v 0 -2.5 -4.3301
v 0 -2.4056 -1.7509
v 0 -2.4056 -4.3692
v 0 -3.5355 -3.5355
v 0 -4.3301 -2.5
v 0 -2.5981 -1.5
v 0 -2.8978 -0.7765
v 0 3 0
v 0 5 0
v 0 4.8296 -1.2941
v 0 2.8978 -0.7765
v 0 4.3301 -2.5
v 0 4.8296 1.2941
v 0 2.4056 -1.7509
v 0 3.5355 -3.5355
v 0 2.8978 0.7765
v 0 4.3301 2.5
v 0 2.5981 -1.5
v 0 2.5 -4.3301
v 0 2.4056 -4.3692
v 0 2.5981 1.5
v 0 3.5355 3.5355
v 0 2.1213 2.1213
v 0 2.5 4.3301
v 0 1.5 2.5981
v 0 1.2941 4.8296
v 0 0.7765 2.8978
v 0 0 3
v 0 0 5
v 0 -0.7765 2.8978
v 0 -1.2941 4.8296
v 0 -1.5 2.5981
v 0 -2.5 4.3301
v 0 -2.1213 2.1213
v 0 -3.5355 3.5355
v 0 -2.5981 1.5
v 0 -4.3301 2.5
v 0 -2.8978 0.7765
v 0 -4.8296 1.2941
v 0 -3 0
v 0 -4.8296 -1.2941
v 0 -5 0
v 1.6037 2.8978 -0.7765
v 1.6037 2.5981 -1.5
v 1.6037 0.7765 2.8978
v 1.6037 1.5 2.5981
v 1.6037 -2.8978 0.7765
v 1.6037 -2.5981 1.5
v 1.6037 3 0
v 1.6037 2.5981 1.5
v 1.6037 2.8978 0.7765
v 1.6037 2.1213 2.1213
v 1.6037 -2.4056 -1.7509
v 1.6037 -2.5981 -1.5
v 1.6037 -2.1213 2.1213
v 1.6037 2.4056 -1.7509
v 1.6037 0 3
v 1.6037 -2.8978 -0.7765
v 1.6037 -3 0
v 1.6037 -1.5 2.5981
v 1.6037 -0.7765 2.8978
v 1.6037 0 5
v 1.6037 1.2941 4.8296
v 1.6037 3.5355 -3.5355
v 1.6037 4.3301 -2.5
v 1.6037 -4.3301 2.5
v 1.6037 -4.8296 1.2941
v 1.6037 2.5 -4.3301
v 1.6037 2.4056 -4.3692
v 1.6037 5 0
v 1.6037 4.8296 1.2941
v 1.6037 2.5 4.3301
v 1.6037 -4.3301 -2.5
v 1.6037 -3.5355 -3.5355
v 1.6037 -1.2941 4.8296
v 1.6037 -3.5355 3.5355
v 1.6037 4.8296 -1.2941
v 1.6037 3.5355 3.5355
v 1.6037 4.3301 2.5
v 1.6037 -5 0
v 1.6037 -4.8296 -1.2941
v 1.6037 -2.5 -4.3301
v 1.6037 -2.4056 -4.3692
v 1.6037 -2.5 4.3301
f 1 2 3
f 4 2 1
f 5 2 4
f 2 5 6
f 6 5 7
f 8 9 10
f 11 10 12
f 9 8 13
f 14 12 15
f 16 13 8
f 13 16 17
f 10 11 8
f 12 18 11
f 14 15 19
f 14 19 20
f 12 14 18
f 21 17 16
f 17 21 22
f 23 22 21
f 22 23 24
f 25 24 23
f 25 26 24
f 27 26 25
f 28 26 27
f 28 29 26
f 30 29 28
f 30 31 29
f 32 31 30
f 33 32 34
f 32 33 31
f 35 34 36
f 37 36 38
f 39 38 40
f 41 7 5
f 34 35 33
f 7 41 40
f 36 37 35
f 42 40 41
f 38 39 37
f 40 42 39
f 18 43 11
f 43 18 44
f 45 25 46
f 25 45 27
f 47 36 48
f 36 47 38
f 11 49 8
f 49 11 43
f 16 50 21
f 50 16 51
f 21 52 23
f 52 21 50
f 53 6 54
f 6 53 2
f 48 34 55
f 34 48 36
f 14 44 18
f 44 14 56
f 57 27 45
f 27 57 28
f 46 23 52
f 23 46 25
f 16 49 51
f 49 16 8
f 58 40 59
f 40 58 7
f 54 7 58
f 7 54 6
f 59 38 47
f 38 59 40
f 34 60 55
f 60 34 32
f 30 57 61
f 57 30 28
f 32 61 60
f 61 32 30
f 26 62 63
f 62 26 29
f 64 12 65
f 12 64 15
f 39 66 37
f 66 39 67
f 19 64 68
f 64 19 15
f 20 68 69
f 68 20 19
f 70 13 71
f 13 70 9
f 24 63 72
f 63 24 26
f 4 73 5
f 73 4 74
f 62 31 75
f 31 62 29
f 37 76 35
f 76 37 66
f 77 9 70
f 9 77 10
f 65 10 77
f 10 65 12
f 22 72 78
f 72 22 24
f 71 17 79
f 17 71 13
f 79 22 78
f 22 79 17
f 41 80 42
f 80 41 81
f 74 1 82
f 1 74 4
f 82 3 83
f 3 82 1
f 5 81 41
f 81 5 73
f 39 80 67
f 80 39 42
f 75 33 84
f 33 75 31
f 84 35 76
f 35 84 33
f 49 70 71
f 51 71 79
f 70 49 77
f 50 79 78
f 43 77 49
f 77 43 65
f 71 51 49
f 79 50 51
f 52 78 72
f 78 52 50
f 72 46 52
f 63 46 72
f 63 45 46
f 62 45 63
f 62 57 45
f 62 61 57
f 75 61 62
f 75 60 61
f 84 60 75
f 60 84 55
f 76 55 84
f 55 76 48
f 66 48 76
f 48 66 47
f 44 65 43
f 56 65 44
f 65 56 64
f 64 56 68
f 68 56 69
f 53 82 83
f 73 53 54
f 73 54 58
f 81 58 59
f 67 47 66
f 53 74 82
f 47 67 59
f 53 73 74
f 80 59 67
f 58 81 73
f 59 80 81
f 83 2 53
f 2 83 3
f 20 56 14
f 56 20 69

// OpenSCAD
// file: ../build_environments.scad
// build_environments.scad: modules to build level sections
//

module pool(diameter=10.0, wall_height=2.0, step_width=3.0, connections=[])
{
    difference() {
        union() {
        difference() {
            cylinder(h=0.5,r1=diameter+step_width,r2=diameter+step_width,$fn=48);
            translate([0,0,-0.1])
                cylinder(h=0.7,r1=diameter,r2=diameter,$fn=48);
        }
        difference() {
            cylinder(h=wall_height,r1=diameter+step_width+1.0,r2=diameter+step_width+1.0,$fn=48);
            translate([0,0,-0.1])
                cylinder(h=wall_height+0.2,r1=diameter+step_width,r2=diameter+step_width,$fn=48);
        }
        }
    
        for (c = connections)
        {
            rotate([0,90,0]) {
                angle = atan2(c[1],c[0]);
                rotate([-angle,0,0]) {
                    cylinder(h=diameter+5.0,r1=c[2],r2=c[2],$fn=48);
                }
            }
        }
    }
}

module straight(length=10.0, width=2.0, dy1=0.0, dy2=0.0, dz=0.0)
{
    dims = [0, 0, 0, 0, 0, (dz/length)];
    matrix = [
        [ 1, dims[0], dims[1], 0 ],
        [ dims[2], 1, dims[4], 0 ],
        [ dims[5], dims[3], 1, 0 ],
        [ 0, 0, 0, 1 ]
    ];
    multmatrix(matrix)
    difference() {
        translate([dy1,0,0])
        union() {
            rotate([0,90,0]) {
                difference() {
                    cylinder(h=(length-dy1-dy2),r1=width+1.0,r2=width+1.0,$fn=24);
                    translate([0,0,-0.1])
                        cylinder(h=(length-dy1-dy2+0.2),r1=width,r2=width,$fn=24);
                }
                difference() {
                    cylinder(h=1.0,r1=width+2.0,r2=width+2.0,$fn=24);
                    translate([0,0,-0.1])
                        cylinder(h=1.2,r1=width,r2=width,$fn=24);
                }
                translate([0,0,(length-dy1-dy2)-1.0]) {
                    difference() {
                        cylinder(h=1.0,r1=width+2.0,r2=width+2.0,$fn=24);
                        translate([0,0,-0.1])
                            cylinder(h=1.2,r1=width,r2=width,$fn=24);
                    }
                }
            }
        }
        translate([0,0,-(2*width+4.0)/2])
            cube([3*length,3*length,2*width+4.0],center=true);
    }
}

module curve(p0=[0,0], center=[0,0], dir=1, angle=0.0, width=2.0)
{
    radius = sqrt((p0[0]-center[0])*(p0[0]-center[0]) + (p0[1]-center[1])*(p0[1]-center[1]));
    if (dir == 0) {
        difference() {
            rotate([0,0,-90])
            difference() {
                rotate_extrude(angle = angle, convexity = 10, $fn=32)
                    translate([radius, 0, 0])
                        circle(r = width+1.0,$fn=24);
                rotate([0,0,-1.0])
                    rotate_extrude(angle = angle+2.0, convexity = 10, $fn=32)
                        translate([radius, 0, 0])
                            circle(r = width,$fn=24);
            }
            translate([0,0,-(2*width+4.0)/2])
                cube([5*radius,5*radius,2*width+4.0],center=true);
        }
    }
    else {
        difference() {
            rotate([0,0,90])
            difference() {
                rotate_extrude(angle = -angle, convexity = 10, $fn=32)
                    translate([radius, 0, 0])
                        circle(r = width+1.0,$fn=24);
                rotate([0,0,1.0])
                    rotate_extrude(angle = -angle-2.0, convexity = 10, $fn=32)
                        translate([radius, 0, 0])
                            circle(r = width,$fn=24);
            }
            translate([0,0,-(2*width+4.0)/2])
                cube([5*radius,5*radius,2*width+4.0],center=true);
        }
    }

}

// test pool
//pool(diameter=12.0000, wall_height=3.0000, step_width=3.0000, connections=[[0.0000,-26.0000,2.0000], [23.6074,0.0000,2.0000]]);

// test straight, slope
//straight(length=26.0000, width=2.0000, dy1=11.8322, dy2=6.7082, dz=0.0000);
//straight(length=29.1549, width=12.0000, dy1=0.0000, dy2=0.0000, dz=-15.0000);

// test curve
//curve(p0=[23.6074, 0.0000], center=[23.6074, 5.0000], dir=0, angle=60.1011, width=2.0000);
//curve(p0=[33.6426, 12.4219], center=[37.9771, 9.9295], dir=1, angle=120.4627, width=2.0000);
// main file
use <../build_environments.scad>;
straight(length=1.6037, width=3.0000, dy1=0.0000, dy2=0.0000, dz=0.0000);
